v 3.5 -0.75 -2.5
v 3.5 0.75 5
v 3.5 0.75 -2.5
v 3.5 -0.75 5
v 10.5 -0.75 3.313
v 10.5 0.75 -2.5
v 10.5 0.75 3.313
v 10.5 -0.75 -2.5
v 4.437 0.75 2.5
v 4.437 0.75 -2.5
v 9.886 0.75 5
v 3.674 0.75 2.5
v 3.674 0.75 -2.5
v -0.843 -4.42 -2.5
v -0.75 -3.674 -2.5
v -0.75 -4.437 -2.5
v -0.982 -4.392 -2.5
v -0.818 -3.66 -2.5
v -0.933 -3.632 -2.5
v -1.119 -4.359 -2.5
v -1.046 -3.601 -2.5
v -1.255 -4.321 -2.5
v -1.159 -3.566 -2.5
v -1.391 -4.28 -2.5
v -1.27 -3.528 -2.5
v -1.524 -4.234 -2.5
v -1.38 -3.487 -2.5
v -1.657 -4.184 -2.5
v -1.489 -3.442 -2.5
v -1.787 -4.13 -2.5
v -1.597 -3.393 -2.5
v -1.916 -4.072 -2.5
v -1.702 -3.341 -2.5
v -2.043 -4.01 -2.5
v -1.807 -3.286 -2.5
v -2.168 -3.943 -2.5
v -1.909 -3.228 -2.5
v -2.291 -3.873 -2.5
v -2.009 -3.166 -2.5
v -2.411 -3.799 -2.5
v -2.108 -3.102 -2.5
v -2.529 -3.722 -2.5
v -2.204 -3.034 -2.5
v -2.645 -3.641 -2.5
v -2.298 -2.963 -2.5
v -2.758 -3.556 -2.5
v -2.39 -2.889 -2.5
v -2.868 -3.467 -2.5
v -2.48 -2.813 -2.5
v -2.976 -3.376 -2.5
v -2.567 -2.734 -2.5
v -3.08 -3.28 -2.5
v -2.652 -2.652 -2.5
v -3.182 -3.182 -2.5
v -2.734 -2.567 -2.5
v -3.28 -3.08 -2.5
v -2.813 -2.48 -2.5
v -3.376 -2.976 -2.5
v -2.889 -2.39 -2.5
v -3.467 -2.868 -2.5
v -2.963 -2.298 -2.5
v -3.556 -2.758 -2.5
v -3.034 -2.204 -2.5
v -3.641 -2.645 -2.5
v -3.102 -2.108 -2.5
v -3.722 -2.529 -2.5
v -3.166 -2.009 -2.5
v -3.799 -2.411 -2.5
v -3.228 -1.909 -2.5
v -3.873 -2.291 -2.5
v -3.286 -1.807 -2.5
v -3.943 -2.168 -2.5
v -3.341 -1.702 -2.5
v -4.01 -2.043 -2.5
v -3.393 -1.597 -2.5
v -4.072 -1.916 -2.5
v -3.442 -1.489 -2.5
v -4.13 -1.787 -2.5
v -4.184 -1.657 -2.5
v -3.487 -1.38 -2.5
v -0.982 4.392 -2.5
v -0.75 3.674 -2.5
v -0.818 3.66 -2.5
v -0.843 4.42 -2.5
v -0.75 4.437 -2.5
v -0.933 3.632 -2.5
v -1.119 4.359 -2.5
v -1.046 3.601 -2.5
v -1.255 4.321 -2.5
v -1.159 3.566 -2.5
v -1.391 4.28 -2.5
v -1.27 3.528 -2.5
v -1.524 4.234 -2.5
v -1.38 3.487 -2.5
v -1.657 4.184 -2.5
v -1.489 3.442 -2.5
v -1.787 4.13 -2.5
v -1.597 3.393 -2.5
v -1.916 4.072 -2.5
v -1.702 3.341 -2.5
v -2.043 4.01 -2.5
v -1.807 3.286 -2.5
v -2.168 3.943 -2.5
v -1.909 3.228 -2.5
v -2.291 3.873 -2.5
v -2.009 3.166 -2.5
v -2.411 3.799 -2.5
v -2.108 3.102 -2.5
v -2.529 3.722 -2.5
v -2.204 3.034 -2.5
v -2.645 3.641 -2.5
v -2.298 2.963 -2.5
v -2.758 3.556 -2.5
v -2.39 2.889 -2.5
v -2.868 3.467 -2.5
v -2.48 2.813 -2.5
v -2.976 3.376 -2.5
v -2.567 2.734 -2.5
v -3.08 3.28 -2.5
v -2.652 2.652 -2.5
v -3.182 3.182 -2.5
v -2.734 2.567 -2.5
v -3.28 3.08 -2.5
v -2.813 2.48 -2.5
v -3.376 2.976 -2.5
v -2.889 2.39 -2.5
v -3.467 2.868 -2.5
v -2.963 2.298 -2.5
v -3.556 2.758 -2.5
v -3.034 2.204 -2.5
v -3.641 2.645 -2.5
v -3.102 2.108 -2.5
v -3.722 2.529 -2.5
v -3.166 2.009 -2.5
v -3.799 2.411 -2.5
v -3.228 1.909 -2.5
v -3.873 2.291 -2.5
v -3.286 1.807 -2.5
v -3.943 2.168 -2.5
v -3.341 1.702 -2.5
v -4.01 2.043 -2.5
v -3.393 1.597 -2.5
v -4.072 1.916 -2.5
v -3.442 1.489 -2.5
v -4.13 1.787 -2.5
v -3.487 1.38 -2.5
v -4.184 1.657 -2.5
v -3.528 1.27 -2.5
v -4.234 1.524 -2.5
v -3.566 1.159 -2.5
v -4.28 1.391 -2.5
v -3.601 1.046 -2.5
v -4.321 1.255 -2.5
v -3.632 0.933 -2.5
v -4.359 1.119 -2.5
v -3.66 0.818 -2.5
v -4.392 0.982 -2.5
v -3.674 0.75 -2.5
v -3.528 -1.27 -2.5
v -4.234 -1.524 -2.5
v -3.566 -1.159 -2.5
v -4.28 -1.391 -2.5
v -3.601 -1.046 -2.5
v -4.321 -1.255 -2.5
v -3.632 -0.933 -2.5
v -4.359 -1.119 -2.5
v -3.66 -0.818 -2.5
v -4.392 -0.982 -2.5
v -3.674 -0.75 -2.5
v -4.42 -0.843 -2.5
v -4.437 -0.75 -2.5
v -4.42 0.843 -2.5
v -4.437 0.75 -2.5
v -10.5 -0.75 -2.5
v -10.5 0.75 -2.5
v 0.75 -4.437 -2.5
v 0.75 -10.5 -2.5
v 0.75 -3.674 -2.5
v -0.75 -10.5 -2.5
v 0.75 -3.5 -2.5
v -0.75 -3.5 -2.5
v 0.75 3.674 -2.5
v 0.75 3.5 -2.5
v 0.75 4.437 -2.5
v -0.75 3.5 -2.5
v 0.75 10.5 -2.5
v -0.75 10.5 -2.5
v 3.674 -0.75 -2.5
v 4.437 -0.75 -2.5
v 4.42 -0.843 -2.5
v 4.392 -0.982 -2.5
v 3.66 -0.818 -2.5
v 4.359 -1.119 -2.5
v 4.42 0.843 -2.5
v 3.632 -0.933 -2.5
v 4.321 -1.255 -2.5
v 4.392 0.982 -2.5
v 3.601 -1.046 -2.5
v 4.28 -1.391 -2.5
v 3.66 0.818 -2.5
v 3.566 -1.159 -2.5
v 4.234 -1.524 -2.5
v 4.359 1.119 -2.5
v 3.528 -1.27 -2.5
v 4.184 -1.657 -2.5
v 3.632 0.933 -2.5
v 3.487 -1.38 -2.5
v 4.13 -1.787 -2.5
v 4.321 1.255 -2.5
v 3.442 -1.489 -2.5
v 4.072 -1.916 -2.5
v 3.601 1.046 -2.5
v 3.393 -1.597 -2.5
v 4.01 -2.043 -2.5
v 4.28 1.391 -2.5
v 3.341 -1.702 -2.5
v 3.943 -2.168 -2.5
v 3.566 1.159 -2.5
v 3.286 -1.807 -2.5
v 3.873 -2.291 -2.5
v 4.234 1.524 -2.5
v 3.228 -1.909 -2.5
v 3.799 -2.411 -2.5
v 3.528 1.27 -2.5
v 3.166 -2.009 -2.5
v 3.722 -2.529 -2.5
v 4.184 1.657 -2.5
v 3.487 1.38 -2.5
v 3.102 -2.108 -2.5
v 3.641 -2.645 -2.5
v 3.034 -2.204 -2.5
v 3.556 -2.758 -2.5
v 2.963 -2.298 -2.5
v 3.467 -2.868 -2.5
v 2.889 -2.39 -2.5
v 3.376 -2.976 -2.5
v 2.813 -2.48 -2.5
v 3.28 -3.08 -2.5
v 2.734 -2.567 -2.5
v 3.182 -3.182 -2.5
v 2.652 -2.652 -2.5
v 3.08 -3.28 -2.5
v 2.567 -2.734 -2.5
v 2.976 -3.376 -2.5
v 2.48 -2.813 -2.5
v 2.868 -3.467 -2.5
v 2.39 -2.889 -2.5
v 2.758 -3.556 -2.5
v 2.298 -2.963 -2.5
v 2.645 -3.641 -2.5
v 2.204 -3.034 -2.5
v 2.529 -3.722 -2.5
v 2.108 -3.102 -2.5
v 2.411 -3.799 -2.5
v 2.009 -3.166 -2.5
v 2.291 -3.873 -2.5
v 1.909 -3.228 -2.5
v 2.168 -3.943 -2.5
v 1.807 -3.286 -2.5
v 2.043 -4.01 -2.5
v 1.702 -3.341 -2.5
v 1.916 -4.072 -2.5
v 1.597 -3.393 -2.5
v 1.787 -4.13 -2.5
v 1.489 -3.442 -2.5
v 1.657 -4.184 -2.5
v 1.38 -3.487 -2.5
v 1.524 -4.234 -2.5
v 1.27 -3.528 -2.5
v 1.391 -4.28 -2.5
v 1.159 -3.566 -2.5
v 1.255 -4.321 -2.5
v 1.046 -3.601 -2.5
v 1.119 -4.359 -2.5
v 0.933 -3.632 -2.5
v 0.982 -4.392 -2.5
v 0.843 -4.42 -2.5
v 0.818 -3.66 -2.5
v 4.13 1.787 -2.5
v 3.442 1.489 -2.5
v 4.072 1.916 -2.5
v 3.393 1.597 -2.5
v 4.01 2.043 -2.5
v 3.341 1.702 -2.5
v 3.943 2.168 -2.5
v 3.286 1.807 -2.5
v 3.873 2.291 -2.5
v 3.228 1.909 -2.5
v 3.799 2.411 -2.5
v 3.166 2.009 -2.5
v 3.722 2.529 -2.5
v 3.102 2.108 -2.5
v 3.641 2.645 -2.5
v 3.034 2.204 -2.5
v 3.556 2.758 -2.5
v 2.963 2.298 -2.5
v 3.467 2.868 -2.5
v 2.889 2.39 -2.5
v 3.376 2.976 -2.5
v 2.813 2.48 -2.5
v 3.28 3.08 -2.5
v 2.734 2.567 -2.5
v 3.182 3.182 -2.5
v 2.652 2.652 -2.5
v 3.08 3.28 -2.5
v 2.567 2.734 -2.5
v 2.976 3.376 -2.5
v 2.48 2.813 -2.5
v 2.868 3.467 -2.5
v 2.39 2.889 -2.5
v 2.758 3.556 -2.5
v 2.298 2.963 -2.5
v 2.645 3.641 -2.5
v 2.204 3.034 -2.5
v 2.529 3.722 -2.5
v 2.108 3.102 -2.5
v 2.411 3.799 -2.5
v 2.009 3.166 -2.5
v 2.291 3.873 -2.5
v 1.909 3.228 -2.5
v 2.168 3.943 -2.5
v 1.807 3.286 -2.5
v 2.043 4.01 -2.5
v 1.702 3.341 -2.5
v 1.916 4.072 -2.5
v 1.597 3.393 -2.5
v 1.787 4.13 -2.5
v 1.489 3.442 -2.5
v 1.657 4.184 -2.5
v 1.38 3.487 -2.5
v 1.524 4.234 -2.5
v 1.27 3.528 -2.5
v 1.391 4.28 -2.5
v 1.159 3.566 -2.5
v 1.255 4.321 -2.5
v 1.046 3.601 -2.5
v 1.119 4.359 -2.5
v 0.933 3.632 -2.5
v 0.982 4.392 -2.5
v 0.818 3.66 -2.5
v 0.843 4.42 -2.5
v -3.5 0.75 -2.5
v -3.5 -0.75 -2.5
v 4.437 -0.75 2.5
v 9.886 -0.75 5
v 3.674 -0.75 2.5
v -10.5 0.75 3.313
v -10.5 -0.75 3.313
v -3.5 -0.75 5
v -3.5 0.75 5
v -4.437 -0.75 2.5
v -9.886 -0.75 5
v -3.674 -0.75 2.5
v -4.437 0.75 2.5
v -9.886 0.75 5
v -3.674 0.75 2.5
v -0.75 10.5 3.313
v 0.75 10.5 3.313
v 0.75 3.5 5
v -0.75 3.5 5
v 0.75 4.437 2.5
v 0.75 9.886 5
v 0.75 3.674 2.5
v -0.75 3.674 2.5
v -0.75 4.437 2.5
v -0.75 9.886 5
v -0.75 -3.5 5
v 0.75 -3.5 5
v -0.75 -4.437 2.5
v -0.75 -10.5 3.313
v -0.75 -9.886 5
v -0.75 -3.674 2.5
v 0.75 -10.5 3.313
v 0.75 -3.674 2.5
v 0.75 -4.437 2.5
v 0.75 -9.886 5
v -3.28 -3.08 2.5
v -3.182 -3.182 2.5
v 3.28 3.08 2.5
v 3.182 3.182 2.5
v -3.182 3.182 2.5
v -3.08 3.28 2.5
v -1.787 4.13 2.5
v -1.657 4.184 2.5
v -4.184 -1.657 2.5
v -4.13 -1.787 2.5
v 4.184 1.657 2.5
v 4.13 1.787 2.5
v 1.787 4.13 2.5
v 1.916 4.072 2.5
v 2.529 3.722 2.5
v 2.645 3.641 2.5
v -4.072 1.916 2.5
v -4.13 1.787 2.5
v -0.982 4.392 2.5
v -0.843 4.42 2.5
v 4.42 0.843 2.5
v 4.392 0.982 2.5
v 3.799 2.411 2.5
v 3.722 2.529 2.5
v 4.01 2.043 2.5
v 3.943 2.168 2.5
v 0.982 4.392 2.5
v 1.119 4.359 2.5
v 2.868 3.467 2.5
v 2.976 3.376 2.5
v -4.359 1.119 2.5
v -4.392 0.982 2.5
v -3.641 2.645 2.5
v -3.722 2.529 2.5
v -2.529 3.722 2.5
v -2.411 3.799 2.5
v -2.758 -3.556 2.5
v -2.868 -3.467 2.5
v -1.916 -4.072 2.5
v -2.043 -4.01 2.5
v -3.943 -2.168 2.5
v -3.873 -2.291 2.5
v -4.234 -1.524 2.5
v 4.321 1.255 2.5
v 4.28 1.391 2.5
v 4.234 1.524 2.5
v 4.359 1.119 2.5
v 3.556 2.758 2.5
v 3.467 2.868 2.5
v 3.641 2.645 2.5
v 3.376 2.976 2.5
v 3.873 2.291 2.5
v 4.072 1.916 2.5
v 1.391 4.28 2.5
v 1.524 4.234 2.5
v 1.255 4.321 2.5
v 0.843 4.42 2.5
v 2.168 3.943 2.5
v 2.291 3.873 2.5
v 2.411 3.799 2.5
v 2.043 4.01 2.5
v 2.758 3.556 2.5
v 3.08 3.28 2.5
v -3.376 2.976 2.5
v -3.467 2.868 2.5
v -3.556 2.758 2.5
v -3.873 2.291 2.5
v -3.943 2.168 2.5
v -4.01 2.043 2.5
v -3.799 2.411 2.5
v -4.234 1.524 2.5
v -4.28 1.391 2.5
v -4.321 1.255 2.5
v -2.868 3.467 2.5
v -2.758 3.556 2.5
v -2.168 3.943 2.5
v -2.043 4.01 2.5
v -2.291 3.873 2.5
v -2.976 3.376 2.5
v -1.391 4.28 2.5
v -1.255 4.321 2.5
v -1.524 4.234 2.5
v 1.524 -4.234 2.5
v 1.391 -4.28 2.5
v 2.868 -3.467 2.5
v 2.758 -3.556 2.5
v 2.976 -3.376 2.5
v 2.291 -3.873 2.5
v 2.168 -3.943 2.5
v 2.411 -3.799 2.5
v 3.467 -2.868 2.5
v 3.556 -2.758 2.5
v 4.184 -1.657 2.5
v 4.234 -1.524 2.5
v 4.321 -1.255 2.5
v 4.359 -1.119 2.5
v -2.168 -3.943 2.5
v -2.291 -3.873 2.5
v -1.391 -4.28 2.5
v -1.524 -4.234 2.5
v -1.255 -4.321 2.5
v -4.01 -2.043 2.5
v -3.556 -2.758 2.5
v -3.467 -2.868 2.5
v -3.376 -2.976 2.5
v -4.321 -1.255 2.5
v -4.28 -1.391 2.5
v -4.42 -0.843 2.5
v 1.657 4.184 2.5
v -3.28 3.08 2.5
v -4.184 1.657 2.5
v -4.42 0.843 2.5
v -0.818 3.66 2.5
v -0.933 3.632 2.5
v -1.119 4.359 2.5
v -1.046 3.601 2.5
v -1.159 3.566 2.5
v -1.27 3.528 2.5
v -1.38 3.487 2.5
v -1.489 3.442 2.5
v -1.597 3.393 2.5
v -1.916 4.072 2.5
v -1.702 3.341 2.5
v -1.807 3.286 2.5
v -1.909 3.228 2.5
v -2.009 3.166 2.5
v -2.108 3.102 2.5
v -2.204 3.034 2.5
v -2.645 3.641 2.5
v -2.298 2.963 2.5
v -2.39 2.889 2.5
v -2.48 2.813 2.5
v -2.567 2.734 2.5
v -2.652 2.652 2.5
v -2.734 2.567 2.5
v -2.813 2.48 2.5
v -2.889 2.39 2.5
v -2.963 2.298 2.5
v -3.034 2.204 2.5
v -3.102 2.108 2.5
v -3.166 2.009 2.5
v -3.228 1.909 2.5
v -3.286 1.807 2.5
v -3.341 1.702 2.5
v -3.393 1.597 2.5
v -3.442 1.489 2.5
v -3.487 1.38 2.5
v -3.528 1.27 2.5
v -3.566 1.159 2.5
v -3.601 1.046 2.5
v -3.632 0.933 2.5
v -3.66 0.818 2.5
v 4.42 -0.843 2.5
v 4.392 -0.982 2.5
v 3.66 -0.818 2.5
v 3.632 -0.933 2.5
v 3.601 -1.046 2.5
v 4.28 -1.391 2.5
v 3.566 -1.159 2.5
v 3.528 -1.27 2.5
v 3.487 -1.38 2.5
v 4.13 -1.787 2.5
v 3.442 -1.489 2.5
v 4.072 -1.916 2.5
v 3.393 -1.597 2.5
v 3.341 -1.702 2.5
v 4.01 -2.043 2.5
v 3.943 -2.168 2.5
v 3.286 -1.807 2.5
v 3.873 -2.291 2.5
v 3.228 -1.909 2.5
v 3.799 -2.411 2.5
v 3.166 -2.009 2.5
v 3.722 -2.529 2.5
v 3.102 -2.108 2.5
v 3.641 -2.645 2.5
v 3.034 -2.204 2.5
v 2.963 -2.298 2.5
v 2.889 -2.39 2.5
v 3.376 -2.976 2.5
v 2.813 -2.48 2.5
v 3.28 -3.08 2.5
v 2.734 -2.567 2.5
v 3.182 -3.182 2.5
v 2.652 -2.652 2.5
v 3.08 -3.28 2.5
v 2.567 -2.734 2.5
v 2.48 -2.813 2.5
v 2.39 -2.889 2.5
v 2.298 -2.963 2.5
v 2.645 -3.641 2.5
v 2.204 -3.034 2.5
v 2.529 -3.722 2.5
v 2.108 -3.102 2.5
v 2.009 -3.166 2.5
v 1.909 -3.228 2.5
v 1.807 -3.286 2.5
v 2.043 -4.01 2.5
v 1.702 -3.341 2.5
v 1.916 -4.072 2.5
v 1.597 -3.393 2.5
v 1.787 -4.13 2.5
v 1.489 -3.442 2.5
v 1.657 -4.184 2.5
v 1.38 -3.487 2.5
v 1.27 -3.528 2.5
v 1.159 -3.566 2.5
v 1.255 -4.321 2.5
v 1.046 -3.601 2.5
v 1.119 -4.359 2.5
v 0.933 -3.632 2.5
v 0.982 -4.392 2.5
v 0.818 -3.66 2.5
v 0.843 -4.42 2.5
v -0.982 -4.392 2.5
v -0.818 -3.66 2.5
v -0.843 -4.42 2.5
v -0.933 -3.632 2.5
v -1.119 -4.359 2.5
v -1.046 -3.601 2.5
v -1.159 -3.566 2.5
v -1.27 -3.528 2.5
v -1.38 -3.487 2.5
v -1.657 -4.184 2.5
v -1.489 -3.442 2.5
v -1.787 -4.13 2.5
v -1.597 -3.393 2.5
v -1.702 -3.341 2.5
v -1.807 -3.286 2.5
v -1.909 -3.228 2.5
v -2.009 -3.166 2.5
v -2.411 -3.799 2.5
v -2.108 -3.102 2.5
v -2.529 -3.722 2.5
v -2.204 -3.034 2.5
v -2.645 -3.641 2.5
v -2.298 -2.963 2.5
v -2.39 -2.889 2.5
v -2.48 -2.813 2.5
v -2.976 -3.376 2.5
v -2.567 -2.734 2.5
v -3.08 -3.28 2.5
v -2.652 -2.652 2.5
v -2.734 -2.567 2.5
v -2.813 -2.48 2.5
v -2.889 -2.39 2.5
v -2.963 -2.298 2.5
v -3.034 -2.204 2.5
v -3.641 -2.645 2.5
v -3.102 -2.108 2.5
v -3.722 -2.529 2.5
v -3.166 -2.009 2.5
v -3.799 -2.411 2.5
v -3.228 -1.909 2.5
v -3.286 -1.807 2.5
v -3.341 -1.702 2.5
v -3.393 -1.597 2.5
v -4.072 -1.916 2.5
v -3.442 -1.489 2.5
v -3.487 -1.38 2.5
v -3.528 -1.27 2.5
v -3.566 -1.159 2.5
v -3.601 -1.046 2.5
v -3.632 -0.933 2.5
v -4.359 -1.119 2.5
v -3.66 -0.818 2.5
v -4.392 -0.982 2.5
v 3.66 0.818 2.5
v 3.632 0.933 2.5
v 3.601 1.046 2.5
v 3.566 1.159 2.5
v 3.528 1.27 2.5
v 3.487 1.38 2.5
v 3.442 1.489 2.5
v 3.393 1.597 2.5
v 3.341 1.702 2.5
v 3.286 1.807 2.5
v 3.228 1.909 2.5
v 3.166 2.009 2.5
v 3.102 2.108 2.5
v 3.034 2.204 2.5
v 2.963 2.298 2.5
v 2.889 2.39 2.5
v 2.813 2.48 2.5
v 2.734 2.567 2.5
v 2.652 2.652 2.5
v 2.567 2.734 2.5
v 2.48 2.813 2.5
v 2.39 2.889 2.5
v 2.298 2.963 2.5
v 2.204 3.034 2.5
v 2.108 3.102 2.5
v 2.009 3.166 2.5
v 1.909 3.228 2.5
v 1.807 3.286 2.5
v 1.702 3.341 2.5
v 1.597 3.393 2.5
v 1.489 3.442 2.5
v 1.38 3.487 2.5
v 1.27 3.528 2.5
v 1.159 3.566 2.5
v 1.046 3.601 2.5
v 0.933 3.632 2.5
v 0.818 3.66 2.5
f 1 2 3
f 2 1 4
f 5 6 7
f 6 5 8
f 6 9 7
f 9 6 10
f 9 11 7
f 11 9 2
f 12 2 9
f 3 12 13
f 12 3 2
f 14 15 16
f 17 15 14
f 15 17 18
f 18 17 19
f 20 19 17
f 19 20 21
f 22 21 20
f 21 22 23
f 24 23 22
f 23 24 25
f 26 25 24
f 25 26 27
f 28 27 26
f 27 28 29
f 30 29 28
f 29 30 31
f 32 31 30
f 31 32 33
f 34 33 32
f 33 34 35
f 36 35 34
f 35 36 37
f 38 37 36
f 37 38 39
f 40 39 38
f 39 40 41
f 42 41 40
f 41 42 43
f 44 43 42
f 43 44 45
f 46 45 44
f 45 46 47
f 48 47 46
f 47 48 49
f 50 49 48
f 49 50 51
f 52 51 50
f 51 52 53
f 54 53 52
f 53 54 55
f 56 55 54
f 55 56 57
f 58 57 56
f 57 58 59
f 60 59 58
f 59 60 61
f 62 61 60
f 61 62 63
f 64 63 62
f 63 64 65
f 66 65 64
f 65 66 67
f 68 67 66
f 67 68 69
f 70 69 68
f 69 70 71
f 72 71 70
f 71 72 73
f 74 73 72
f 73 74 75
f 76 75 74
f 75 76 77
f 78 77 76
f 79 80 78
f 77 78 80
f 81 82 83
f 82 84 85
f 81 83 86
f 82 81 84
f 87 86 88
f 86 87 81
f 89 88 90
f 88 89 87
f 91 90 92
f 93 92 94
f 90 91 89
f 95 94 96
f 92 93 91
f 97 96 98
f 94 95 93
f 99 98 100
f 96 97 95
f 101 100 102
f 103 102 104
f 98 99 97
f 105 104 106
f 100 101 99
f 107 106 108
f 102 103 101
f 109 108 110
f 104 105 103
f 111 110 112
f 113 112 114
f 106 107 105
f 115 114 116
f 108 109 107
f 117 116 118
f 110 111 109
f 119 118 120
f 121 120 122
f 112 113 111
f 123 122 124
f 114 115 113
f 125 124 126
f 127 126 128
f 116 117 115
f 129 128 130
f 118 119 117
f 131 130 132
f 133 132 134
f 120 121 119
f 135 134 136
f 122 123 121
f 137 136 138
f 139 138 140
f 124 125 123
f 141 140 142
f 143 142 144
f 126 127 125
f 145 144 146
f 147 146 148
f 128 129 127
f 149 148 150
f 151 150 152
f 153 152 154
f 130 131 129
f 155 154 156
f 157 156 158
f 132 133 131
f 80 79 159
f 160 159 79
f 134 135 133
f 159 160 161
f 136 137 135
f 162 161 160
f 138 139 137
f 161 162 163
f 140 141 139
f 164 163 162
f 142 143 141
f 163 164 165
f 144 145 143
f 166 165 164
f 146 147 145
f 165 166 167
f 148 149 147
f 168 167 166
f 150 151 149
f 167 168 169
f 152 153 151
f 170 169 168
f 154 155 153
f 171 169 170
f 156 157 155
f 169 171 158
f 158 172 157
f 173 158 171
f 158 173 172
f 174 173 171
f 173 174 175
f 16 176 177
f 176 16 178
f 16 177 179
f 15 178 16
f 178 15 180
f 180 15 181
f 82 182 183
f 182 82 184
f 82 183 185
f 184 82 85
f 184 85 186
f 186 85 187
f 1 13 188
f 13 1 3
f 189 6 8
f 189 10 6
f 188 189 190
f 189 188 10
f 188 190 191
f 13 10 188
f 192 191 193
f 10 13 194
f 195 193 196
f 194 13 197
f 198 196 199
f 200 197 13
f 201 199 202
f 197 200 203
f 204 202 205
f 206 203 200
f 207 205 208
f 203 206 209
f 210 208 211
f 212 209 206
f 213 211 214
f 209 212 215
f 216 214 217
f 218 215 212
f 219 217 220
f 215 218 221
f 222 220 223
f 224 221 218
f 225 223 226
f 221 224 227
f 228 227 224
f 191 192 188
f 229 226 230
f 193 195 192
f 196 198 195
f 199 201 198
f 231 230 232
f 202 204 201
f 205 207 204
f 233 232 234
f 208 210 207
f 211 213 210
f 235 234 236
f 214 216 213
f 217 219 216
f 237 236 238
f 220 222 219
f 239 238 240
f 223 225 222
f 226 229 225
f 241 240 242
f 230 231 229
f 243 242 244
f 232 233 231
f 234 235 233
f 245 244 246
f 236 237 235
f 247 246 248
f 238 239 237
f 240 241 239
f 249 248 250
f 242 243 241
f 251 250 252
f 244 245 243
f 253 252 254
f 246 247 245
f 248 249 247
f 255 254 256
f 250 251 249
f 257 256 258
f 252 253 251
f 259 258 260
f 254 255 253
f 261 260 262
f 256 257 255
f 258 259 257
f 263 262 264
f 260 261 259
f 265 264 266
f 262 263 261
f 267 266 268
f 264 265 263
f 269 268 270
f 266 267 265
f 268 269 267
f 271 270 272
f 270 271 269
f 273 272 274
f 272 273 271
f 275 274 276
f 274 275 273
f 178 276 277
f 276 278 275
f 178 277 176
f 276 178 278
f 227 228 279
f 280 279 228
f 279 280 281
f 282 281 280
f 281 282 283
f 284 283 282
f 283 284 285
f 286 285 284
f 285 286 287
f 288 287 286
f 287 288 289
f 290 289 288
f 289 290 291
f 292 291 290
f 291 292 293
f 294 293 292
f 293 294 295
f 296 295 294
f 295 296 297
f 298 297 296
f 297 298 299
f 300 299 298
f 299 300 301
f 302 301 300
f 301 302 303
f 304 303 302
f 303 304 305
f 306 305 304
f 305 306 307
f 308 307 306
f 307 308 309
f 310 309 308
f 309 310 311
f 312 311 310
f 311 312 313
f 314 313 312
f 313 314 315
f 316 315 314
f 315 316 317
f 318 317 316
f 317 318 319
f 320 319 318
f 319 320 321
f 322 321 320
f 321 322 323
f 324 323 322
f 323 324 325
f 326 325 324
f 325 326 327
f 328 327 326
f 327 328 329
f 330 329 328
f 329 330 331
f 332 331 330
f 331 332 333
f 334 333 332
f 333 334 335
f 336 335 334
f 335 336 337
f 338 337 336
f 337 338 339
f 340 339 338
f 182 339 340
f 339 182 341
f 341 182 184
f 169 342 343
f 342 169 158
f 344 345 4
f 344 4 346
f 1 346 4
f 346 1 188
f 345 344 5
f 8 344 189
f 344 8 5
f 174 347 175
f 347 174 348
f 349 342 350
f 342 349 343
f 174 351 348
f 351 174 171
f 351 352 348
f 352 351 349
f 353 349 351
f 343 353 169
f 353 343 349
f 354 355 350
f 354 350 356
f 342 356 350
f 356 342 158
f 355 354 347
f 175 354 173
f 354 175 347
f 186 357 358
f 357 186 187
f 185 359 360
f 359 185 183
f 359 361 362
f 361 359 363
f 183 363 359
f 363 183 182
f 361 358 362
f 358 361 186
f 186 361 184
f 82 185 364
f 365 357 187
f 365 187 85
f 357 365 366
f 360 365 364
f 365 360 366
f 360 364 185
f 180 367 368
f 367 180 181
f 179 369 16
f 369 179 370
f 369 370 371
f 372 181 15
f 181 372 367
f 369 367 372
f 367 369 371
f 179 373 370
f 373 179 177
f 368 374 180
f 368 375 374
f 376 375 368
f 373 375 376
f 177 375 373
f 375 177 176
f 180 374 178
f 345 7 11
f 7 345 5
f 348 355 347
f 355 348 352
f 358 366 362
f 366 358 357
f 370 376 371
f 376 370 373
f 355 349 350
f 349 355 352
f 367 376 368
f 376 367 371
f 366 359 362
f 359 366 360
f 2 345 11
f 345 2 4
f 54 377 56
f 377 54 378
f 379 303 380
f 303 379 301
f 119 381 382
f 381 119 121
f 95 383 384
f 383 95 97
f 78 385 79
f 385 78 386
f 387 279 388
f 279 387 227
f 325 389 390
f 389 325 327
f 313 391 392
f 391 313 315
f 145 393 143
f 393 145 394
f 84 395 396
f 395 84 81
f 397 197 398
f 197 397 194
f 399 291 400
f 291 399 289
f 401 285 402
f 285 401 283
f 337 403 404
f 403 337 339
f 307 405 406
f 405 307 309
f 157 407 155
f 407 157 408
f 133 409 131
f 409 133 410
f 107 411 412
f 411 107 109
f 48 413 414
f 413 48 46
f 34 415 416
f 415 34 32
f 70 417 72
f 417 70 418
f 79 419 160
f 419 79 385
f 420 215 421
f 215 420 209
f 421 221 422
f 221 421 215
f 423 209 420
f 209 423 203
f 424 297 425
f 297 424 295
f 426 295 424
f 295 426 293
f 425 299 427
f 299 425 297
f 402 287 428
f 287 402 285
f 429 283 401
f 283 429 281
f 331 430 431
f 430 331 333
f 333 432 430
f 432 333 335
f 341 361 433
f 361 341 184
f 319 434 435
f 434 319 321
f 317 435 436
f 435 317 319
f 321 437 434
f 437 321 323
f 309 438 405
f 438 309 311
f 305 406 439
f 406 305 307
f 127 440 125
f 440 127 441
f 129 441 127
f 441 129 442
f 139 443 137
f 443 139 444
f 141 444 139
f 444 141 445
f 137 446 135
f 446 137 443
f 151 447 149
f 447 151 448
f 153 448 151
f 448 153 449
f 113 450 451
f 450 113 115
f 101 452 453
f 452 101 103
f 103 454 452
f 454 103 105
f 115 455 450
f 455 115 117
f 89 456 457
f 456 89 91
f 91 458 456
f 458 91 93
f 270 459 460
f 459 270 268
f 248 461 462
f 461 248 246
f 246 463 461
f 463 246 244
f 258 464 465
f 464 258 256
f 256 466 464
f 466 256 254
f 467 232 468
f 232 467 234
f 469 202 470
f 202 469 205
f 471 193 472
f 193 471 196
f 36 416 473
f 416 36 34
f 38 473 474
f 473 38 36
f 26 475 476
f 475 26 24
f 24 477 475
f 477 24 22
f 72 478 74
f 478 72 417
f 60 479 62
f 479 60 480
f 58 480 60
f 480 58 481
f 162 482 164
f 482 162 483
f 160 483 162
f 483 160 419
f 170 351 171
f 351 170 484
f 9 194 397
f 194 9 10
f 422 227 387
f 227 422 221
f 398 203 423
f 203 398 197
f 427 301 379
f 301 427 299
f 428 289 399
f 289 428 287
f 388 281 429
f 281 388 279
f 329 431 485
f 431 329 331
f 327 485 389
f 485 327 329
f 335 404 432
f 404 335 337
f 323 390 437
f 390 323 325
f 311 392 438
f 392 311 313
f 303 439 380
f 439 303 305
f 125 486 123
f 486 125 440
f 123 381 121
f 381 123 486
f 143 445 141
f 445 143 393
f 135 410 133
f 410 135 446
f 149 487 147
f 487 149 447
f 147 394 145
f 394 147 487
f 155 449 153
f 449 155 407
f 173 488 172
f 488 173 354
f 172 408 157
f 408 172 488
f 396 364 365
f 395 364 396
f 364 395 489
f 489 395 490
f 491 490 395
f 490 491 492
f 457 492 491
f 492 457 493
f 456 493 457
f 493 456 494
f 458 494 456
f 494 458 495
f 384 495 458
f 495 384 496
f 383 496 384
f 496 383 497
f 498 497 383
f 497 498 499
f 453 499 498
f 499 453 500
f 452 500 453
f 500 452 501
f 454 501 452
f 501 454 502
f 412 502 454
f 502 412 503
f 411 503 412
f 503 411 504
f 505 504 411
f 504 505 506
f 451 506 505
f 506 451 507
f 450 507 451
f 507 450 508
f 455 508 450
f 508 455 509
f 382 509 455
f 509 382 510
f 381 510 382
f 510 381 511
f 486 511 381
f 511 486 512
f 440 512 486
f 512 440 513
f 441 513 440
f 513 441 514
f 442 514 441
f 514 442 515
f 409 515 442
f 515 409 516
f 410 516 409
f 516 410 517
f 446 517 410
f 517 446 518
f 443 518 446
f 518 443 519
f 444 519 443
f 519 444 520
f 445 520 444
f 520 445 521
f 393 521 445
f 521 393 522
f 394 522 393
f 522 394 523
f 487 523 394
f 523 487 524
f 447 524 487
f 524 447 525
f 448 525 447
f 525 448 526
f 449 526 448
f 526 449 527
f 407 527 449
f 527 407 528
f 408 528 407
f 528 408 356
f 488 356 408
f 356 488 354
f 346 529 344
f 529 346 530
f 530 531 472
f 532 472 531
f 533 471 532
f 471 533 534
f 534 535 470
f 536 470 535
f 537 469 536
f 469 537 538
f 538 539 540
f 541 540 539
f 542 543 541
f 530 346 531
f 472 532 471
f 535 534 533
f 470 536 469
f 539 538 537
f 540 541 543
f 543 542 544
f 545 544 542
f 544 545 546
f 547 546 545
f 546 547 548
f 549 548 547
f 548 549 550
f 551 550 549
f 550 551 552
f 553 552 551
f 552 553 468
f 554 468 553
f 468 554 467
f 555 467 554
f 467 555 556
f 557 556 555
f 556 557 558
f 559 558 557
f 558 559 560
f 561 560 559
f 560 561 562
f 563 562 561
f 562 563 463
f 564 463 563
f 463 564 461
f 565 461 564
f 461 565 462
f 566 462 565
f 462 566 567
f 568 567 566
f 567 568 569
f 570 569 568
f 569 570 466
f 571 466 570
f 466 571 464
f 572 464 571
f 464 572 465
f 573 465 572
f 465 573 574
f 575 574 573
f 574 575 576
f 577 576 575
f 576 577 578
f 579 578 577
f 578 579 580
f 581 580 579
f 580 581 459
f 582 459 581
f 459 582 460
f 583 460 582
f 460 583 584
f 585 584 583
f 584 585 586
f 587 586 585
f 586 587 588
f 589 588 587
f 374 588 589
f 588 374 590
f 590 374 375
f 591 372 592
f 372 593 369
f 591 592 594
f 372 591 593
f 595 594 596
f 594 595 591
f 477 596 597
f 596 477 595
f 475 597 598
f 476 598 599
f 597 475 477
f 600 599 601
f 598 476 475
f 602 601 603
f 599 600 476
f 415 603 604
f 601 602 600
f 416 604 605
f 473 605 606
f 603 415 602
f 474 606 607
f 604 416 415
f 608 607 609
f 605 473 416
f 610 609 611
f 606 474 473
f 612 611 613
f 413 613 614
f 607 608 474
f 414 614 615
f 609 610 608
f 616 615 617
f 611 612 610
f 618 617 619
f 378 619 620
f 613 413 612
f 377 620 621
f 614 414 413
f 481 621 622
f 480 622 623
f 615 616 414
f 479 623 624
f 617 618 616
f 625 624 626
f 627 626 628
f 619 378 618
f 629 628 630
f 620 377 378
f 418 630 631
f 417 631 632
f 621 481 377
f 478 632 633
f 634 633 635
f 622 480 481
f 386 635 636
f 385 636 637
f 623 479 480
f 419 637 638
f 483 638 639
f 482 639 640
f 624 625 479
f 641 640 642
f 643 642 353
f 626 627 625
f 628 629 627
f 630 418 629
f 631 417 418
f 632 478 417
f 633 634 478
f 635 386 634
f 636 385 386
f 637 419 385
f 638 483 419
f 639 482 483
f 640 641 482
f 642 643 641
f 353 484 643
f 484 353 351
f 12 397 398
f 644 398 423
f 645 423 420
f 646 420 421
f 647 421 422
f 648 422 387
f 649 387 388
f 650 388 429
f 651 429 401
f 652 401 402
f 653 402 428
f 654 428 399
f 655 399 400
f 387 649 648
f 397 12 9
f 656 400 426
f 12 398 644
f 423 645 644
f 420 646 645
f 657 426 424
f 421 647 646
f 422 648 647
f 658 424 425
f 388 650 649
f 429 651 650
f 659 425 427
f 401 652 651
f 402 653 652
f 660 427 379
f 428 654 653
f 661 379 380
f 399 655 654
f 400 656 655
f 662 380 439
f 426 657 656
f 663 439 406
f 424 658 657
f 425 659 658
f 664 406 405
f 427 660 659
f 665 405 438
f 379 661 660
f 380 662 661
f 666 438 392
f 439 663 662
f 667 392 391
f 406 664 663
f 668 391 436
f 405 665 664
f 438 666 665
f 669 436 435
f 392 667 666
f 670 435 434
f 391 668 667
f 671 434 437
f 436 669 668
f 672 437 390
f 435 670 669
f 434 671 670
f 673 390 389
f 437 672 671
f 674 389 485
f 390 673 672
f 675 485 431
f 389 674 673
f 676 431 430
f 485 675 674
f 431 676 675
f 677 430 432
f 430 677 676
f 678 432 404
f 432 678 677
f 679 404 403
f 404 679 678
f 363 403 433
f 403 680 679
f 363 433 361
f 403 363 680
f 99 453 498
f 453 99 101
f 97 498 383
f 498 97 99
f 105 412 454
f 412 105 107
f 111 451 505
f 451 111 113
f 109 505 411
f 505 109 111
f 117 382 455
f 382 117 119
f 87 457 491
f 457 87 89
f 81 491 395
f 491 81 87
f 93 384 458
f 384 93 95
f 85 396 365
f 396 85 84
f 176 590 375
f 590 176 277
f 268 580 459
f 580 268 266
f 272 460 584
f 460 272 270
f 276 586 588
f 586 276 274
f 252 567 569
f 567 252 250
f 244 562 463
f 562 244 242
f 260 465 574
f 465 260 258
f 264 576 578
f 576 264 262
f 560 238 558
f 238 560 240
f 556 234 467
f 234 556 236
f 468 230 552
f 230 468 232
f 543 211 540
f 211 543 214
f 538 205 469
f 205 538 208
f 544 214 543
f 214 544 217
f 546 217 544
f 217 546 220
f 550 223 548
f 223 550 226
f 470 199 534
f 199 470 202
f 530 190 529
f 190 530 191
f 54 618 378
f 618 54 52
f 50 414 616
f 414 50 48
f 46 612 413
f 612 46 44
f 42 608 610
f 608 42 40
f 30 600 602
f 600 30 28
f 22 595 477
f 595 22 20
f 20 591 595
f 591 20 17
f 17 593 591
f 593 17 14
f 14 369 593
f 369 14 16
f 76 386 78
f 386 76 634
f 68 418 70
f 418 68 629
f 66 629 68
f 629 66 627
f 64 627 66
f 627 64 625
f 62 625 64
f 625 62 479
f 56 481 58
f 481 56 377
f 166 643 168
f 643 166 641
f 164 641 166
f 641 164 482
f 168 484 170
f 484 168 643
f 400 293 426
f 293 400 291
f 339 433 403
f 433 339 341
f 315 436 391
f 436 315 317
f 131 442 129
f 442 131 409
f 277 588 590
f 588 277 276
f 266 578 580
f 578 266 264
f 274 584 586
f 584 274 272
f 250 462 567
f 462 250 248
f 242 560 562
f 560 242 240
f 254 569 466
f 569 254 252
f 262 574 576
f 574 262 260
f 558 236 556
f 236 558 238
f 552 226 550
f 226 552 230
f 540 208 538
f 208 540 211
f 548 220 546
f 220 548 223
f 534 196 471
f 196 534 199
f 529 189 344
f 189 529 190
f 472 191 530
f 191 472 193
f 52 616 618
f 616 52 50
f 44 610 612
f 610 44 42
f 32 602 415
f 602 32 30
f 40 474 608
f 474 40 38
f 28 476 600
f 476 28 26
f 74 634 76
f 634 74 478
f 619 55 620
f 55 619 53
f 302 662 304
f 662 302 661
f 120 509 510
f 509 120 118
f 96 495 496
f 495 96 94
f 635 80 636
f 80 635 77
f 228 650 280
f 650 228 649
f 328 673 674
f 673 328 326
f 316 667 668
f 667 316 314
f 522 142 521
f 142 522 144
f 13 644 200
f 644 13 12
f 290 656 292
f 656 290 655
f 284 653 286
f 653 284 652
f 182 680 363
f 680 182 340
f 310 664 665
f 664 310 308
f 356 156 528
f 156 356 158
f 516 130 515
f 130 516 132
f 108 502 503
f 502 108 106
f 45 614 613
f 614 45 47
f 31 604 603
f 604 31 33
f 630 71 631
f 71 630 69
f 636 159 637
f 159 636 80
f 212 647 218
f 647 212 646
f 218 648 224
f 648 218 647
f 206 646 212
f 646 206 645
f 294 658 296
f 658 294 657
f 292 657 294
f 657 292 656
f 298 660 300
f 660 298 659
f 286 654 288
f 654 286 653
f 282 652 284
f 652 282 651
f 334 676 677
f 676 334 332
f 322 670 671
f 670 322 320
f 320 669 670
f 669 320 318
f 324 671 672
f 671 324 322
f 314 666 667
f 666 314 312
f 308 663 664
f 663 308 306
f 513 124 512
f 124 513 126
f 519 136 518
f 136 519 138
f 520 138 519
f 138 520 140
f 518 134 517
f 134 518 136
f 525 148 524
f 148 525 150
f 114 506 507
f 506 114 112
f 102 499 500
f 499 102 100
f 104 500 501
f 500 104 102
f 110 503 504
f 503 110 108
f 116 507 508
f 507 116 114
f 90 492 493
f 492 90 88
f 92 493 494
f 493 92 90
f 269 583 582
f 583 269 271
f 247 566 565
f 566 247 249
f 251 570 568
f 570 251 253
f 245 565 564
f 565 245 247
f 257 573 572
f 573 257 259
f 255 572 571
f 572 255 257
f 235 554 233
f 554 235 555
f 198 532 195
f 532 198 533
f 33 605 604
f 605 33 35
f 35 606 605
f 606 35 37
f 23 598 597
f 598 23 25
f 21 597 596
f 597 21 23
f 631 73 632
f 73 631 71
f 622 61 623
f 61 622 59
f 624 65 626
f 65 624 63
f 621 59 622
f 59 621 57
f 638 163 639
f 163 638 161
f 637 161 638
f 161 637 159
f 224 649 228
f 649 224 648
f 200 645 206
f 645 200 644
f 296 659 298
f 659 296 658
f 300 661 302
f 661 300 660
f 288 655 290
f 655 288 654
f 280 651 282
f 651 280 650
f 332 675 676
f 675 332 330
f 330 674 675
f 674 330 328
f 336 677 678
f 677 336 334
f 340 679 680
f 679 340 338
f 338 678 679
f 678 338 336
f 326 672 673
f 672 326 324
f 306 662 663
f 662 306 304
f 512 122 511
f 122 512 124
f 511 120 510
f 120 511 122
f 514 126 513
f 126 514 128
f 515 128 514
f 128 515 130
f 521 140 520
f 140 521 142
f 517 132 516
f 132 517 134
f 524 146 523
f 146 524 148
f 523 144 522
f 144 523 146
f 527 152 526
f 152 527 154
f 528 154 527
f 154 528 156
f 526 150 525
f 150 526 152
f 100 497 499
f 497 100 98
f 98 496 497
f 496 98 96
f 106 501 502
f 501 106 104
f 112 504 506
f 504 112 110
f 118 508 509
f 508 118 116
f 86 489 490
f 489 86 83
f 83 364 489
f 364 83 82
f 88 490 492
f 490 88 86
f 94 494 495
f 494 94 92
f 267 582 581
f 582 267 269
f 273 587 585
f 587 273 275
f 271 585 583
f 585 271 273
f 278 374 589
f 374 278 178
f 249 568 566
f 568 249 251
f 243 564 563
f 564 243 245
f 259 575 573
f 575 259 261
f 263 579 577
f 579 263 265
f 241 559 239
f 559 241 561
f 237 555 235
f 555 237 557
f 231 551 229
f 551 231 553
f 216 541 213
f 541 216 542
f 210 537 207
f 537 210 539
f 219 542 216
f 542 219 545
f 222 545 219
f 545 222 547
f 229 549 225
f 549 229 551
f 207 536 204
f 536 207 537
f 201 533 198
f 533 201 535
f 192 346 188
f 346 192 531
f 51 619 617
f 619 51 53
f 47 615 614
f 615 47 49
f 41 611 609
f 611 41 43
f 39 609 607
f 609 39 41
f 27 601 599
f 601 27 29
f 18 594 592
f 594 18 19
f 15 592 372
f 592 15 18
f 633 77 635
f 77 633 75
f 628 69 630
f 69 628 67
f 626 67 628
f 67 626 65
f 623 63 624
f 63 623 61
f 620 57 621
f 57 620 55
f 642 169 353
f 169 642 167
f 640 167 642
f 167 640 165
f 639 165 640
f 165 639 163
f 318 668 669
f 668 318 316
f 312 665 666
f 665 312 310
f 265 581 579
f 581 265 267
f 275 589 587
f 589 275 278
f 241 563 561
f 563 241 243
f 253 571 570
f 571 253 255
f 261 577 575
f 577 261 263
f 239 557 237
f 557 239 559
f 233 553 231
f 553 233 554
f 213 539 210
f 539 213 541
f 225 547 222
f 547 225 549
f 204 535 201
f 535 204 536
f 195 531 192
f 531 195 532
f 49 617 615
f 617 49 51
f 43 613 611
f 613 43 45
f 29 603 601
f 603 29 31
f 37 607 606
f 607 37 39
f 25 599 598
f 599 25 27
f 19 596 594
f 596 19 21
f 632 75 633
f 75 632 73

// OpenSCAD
$fn=200;

fin();
//translate([0,0,-20]) cylinder(r1=10,r2=5,h=20);
difference() {
    cylinder(d=9,h=5, center=true);
    #cylinder(d=7.5, h=200, center=true);
}


module fin() {
    difference() {
        union(){
            translate([7,0,7.5])  cube([7,1.5,20], center=true);
            translate([-7,0,7.5]) cube([7,1.5,20],center=true);
            rotate([0,0,90])  translate([7,0,7.5])  cube([7,1.5,20], center=true);
            rotate([0,0,90]) translate([-7,0,7.5]) cube([7,1.5,20], center=true);
        }
        union() {
            #rotate([0,-20,0]) translate([16,0,0]) cube([10,2,50],center=true);
            #rotate([0, 20,0]) translate([-16,0,0]) cube([10,2,50],center=true); 
            
            #rotate([0,-20,90]) translate([16,0,0]) cube([10,2,50],center=true);
            #rotate([0, 20,90]) translate([-16,0,0]) cube([10,2,50],center=true); 
            #translate([0,0,15]) cube([20,20,20],center=true);
        }
    }
        
}
